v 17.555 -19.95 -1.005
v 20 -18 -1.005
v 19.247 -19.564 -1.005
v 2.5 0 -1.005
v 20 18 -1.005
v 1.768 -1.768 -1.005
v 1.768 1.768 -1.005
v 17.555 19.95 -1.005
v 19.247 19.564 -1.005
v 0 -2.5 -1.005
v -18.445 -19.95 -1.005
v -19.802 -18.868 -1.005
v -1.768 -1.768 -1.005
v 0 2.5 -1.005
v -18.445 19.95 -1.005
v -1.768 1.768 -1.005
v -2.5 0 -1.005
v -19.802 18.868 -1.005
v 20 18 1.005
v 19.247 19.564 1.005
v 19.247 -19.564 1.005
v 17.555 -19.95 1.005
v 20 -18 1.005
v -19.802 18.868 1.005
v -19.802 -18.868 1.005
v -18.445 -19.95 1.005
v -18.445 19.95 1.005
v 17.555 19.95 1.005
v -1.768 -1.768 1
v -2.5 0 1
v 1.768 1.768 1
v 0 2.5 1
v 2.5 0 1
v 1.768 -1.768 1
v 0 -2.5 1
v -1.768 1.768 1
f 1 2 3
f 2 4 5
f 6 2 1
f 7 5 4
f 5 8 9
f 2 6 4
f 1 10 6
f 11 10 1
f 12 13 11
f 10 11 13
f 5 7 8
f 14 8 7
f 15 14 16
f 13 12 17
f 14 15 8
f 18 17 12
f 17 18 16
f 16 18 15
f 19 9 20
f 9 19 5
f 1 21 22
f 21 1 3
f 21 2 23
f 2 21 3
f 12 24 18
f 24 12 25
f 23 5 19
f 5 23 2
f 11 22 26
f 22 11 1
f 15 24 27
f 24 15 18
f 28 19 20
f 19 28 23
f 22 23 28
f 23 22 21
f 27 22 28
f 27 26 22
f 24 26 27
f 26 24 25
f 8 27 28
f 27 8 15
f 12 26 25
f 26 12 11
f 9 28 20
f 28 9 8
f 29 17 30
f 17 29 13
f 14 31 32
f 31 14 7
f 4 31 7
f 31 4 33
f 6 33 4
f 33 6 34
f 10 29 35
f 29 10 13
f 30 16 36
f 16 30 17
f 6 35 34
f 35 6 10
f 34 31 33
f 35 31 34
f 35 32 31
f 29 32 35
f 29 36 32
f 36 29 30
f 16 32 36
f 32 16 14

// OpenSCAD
// Parameters
plate_size = 40;         // Width and height of the square plate
plate_thickness = 2;     // Thickness of the plate
corner_radius = 2;       // Radius for rounded corners
hole_diameter = 5;       // Diameter of the central hole

module square_plate() {
    difference() {
        // Rounded square plate
        minkowski() {
            cube([plate_size - 2*corner_radius, plate_size - 2*corner_radius, plate_thickness], center=true);
            cylinder(r=corner_radius, h=0.01, center=true);
        }
        // Central hole
        translate([0, 0, -1])
            cylinder(d=hole_diameter, h=plate_thickness + 2, center=true);
    }
}

// Render one plate
square_plate();

// To render all 6 plates stacked (optional):
// for (i = [0:5]) {
//     translate([0, 0, i * (plate_thickness + 0.5)])
//         square_plate();
// }
